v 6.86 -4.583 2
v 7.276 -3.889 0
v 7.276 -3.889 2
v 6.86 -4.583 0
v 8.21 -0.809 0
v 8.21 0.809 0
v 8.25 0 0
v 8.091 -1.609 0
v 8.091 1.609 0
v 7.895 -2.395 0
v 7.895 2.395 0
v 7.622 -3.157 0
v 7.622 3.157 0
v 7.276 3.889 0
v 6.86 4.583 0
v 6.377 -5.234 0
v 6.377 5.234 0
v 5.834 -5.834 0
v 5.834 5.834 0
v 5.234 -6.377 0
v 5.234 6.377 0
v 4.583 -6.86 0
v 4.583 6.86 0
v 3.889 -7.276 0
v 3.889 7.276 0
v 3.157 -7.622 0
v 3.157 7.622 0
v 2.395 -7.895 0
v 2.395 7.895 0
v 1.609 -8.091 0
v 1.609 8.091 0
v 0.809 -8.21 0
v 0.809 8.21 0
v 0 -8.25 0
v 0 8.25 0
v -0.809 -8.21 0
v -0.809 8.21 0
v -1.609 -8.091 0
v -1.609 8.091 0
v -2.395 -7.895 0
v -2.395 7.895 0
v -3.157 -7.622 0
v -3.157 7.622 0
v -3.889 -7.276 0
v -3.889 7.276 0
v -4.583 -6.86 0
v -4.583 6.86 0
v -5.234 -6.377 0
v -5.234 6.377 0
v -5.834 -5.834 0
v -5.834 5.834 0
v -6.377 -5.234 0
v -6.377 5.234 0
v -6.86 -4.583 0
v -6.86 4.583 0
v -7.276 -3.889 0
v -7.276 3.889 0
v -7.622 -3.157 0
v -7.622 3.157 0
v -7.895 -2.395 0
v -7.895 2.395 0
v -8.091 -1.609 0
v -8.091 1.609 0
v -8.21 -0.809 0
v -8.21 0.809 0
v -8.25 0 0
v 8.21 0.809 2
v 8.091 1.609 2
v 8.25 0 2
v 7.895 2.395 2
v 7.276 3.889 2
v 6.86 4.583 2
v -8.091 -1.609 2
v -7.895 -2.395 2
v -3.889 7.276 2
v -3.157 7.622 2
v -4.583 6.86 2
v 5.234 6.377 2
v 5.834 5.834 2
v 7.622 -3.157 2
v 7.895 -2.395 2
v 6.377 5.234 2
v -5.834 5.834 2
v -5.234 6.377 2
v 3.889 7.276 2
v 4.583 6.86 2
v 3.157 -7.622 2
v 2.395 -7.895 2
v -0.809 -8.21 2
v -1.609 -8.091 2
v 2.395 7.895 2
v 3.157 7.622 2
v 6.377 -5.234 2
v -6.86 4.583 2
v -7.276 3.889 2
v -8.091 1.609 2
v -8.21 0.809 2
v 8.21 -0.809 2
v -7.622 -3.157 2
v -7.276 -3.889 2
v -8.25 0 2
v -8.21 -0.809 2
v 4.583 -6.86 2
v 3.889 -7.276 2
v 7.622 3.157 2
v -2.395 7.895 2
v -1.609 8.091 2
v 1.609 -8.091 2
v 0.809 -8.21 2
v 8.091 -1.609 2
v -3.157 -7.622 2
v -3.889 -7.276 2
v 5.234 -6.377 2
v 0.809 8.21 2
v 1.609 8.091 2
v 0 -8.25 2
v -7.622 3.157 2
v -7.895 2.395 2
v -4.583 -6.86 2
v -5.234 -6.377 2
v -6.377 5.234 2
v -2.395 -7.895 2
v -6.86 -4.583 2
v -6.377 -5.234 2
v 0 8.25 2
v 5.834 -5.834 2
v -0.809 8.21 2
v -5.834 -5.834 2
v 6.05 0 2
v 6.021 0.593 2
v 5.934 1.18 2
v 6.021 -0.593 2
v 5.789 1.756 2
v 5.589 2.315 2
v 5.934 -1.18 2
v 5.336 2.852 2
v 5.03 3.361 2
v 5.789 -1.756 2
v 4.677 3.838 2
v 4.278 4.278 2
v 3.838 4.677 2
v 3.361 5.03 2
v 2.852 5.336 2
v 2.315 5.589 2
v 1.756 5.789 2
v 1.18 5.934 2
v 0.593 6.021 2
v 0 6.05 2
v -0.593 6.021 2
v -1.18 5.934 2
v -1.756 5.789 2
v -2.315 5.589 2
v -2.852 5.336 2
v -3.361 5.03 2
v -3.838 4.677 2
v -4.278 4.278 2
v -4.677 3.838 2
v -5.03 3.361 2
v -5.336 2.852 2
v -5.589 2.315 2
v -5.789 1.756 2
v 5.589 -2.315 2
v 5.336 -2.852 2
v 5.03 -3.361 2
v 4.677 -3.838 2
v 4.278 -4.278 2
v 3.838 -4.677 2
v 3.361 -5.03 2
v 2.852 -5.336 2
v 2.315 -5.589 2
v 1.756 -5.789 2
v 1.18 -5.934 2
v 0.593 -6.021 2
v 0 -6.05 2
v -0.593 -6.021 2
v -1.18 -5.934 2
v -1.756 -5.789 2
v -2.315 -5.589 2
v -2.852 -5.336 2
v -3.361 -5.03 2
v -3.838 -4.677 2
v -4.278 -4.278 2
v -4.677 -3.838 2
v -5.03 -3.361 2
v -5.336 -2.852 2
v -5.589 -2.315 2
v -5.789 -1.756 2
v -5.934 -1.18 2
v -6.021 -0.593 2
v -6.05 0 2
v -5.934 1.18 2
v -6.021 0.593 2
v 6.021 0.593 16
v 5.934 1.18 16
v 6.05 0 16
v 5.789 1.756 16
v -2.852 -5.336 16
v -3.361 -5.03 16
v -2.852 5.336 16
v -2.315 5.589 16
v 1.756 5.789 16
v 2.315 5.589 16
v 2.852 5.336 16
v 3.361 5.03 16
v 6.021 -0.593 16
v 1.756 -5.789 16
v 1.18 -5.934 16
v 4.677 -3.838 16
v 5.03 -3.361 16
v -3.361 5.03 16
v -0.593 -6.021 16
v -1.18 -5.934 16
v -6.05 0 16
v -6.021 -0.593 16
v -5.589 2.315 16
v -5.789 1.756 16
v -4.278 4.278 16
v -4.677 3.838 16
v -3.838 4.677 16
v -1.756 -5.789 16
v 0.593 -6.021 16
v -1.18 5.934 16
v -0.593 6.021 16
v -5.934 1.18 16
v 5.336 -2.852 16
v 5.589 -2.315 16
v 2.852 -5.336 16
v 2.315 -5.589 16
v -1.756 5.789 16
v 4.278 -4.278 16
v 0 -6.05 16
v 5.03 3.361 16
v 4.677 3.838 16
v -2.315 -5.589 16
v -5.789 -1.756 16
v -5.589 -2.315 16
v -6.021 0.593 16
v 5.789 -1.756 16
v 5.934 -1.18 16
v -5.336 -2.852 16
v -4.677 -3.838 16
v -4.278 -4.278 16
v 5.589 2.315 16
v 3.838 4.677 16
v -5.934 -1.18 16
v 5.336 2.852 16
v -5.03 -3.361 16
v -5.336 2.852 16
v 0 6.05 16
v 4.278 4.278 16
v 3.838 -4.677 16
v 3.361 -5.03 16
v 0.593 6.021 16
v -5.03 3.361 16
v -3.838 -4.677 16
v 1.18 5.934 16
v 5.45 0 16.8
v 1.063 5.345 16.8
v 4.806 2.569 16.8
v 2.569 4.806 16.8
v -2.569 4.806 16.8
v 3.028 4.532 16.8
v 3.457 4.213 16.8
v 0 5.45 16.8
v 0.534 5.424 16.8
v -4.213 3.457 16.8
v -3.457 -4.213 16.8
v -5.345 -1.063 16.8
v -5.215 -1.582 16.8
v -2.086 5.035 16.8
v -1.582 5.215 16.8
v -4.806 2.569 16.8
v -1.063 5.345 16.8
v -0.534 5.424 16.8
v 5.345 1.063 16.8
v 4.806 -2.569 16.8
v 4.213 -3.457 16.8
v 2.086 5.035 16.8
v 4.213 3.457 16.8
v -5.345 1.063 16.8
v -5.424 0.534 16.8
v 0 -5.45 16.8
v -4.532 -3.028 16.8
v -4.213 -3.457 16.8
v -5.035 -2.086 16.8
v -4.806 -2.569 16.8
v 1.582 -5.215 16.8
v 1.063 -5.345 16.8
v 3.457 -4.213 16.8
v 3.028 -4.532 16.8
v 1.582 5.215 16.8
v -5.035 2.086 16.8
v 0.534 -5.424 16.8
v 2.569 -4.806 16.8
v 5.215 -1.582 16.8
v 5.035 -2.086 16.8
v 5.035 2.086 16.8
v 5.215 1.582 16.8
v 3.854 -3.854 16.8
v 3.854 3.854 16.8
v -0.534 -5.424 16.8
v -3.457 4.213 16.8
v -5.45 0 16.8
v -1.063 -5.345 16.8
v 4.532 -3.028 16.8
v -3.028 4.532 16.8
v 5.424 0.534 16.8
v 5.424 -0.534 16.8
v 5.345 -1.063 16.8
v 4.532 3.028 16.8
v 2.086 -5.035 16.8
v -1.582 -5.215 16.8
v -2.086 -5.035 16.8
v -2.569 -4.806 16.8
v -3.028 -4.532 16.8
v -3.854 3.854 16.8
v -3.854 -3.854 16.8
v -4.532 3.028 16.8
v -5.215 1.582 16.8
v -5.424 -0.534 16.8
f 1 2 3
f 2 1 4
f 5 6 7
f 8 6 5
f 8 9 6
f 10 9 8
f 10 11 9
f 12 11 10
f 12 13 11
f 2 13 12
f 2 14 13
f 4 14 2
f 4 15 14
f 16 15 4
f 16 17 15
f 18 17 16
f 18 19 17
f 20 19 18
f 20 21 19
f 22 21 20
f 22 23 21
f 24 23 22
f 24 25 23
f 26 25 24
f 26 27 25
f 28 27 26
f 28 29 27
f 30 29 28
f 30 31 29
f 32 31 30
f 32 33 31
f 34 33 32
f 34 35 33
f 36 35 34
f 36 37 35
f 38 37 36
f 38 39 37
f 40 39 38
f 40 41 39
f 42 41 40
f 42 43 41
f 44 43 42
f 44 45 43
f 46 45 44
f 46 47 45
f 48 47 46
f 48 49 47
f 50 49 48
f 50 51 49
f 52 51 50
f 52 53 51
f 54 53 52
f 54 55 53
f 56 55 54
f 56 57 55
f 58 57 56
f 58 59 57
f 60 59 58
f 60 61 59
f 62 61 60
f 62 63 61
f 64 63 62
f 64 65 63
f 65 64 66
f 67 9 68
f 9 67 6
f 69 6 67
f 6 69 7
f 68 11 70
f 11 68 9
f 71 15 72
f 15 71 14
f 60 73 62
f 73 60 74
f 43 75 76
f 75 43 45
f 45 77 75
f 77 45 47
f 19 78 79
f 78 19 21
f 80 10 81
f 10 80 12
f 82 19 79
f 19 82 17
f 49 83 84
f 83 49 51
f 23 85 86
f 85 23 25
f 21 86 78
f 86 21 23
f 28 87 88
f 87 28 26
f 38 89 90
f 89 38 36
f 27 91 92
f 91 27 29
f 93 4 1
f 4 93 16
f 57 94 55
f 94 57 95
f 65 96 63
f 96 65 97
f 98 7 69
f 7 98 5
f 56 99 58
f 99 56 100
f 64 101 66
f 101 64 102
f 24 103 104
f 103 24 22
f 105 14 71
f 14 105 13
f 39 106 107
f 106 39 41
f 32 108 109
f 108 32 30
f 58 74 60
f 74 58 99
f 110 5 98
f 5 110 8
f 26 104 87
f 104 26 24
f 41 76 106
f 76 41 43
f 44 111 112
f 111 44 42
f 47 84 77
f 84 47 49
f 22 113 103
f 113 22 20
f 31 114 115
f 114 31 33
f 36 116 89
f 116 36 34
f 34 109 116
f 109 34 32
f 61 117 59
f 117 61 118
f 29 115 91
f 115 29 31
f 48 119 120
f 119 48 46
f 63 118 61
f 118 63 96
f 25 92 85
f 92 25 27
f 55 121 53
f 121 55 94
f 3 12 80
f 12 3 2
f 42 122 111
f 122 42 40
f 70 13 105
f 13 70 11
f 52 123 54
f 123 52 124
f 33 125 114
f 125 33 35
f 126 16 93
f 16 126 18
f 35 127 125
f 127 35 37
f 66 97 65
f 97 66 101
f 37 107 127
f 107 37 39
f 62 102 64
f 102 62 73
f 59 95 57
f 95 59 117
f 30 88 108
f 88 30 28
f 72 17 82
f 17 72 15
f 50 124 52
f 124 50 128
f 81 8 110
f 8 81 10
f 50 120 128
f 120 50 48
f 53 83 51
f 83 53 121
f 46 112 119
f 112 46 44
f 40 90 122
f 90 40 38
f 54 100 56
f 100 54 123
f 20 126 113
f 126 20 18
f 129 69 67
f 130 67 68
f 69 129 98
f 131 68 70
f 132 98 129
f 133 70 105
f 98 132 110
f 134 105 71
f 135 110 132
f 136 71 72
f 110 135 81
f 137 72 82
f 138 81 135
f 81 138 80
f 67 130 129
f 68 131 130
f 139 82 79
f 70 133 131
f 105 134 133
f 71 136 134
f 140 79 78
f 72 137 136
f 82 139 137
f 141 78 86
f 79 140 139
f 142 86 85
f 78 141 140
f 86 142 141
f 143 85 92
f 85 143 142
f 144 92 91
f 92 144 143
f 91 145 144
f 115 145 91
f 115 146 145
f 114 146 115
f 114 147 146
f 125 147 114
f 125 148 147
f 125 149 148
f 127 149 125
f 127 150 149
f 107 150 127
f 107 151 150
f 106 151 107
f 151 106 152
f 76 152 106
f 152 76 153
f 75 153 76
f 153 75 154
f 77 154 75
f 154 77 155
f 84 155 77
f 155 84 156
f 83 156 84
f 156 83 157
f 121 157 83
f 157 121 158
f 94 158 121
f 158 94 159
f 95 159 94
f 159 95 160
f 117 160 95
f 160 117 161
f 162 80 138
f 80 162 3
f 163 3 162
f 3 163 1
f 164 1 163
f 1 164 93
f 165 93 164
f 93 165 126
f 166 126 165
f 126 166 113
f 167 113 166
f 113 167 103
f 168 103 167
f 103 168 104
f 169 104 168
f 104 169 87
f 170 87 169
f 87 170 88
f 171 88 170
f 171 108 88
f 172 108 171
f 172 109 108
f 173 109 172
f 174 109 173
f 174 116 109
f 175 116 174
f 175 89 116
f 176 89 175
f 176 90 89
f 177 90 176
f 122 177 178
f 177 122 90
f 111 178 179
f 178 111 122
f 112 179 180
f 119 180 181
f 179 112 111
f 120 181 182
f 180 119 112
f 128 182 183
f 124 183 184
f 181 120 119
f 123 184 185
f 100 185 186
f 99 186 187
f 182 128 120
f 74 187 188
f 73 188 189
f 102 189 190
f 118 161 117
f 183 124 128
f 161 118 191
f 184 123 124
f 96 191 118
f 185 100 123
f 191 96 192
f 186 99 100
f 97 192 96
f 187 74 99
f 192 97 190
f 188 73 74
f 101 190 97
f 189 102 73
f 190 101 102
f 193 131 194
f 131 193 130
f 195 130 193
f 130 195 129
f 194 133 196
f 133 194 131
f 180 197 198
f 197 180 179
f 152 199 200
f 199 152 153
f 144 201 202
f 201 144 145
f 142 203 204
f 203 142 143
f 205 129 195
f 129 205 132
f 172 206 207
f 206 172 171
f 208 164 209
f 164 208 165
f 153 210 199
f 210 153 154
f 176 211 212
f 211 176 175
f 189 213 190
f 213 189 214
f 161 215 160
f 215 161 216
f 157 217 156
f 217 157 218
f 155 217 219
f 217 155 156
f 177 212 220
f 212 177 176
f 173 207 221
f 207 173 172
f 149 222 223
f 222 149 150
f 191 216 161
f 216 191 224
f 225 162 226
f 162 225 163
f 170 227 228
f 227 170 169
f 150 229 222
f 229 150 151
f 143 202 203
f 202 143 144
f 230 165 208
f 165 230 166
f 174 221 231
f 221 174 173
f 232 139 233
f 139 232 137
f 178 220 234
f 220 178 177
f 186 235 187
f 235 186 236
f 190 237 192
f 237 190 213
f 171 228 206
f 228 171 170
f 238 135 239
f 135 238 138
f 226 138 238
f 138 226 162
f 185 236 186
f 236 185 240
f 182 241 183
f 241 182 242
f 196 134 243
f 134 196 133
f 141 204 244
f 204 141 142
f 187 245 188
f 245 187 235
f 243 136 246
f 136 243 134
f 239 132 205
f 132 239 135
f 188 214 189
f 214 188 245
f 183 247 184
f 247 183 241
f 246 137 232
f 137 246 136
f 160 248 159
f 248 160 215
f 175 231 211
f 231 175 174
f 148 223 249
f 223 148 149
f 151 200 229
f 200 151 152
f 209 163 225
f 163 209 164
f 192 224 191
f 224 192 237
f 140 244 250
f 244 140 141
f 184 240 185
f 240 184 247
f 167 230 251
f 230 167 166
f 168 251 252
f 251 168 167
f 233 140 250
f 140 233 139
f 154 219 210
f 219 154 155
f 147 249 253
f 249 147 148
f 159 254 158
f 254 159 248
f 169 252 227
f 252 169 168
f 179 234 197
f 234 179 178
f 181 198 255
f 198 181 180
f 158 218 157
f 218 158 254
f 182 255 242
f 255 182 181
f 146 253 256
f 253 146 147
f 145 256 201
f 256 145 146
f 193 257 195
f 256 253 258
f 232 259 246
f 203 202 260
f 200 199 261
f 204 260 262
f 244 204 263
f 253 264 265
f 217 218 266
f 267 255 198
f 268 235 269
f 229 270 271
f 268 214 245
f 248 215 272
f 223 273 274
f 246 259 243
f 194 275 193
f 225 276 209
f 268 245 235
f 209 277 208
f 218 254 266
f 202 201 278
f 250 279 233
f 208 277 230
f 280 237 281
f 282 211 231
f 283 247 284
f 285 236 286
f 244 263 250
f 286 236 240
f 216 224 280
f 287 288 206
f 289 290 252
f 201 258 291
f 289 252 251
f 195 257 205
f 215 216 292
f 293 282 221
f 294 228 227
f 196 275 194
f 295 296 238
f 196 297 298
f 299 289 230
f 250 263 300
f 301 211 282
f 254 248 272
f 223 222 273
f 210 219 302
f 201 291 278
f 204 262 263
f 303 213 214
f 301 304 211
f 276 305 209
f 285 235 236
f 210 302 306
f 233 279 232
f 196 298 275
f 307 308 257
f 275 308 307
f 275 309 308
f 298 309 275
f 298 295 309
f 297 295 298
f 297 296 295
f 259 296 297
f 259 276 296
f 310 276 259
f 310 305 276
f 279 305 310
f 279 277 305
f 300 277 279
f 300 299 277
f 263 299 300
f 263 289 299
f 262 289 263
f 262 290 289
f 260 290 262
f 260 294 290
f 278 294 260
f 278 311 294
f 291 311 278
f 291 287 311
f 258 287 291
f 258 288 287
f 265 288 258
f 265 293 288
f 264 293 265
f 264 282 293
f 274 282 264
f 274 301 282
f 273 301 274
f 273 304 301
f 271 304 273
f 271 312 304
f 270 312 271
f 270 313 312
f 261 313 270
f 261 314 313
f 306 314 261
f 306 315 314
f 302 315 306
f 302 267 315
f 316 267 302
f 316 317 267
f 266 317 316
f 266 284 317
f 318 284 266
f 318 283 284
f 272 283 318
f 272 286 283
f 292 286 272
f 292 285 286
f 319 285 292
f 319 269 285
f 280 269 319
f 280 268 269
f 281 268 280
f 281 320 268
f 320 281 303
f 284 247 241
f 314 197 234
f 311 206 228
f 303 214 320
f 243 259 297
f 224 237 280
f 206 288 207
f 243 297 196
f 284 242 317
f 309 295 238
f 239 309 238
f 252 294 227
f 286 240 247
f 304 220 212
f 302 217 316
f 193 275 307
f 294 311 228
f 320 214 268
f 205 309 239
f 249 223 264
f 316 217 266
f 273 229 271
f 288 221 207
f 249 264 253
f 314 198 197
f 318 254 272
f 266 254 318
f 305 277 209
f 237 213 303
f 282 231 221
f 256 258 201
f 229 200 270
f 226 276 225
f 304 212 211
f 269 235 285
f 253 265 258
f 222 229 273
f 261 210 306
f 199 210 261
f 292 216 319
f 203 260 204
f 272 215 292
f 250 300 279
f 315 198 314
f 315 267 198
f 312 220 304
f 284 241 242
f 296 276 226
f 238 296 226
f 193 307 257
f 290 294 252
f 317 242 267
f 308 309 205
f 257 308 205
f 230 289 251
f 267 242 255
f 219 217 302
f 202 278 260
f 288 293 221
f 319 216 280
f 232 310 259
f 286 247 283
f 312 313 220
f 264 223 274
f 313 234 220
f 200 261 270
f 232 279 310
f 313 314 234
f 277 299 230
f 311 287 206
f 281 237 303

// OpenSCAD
// Curtain Rod Hole Plug
// Cylindrical insert to block curtain rod mounting holes
// and prevent the curtain from falling off.
//
// Hole measurements:
//   Diameter: 12.5 mm
//   Depth:    14 mm
//
// Design: slight interference fit (0.2 mm under on diameter)
// with a small flange/cap so the plug sits flush and doesn't
// fall into the hole.

$fn = 64;  // smooth circles

// --- Tunables ---
HOLE_DIA   = 12.5;   // measured hole diameter
HOLE_DEPTH = 14;     // measured hole depth
TOL        = 0.2;    // per-side tolerance (shrink plug body)
CAP_EXTRA  = 2.0;    // cap extends beyond hole diameter (per side)
CAP_H      = 2.0;    // cap thickness

// --- Derived ---
BODY_DIA = HOLE_DIA - TOL * 2;   // 12.1 mm
BODY_R   = BODY_DIA / 2;
CAP_DIA  = HOLE_DIA + CAP_EXTRA * 2;
CAP_R    = CAP_DIA / 2;

// Cap (flange) — sits on the surface
cylinder(h = CAP_H, r = CAP_R);

// Body — press-fits into the hole
translate([0, 0, CAP_H])
    cylinder(h = HOLE_DEPTH, r = BODY_R);

// Small chamfer at insertion tip for easy press-in
translate([0, 0, CAP_H + HOLE_DEPTH])
    cylinder(h = 0.8, r1 = BODY_R, r2 = BODY_R - 0.6);
